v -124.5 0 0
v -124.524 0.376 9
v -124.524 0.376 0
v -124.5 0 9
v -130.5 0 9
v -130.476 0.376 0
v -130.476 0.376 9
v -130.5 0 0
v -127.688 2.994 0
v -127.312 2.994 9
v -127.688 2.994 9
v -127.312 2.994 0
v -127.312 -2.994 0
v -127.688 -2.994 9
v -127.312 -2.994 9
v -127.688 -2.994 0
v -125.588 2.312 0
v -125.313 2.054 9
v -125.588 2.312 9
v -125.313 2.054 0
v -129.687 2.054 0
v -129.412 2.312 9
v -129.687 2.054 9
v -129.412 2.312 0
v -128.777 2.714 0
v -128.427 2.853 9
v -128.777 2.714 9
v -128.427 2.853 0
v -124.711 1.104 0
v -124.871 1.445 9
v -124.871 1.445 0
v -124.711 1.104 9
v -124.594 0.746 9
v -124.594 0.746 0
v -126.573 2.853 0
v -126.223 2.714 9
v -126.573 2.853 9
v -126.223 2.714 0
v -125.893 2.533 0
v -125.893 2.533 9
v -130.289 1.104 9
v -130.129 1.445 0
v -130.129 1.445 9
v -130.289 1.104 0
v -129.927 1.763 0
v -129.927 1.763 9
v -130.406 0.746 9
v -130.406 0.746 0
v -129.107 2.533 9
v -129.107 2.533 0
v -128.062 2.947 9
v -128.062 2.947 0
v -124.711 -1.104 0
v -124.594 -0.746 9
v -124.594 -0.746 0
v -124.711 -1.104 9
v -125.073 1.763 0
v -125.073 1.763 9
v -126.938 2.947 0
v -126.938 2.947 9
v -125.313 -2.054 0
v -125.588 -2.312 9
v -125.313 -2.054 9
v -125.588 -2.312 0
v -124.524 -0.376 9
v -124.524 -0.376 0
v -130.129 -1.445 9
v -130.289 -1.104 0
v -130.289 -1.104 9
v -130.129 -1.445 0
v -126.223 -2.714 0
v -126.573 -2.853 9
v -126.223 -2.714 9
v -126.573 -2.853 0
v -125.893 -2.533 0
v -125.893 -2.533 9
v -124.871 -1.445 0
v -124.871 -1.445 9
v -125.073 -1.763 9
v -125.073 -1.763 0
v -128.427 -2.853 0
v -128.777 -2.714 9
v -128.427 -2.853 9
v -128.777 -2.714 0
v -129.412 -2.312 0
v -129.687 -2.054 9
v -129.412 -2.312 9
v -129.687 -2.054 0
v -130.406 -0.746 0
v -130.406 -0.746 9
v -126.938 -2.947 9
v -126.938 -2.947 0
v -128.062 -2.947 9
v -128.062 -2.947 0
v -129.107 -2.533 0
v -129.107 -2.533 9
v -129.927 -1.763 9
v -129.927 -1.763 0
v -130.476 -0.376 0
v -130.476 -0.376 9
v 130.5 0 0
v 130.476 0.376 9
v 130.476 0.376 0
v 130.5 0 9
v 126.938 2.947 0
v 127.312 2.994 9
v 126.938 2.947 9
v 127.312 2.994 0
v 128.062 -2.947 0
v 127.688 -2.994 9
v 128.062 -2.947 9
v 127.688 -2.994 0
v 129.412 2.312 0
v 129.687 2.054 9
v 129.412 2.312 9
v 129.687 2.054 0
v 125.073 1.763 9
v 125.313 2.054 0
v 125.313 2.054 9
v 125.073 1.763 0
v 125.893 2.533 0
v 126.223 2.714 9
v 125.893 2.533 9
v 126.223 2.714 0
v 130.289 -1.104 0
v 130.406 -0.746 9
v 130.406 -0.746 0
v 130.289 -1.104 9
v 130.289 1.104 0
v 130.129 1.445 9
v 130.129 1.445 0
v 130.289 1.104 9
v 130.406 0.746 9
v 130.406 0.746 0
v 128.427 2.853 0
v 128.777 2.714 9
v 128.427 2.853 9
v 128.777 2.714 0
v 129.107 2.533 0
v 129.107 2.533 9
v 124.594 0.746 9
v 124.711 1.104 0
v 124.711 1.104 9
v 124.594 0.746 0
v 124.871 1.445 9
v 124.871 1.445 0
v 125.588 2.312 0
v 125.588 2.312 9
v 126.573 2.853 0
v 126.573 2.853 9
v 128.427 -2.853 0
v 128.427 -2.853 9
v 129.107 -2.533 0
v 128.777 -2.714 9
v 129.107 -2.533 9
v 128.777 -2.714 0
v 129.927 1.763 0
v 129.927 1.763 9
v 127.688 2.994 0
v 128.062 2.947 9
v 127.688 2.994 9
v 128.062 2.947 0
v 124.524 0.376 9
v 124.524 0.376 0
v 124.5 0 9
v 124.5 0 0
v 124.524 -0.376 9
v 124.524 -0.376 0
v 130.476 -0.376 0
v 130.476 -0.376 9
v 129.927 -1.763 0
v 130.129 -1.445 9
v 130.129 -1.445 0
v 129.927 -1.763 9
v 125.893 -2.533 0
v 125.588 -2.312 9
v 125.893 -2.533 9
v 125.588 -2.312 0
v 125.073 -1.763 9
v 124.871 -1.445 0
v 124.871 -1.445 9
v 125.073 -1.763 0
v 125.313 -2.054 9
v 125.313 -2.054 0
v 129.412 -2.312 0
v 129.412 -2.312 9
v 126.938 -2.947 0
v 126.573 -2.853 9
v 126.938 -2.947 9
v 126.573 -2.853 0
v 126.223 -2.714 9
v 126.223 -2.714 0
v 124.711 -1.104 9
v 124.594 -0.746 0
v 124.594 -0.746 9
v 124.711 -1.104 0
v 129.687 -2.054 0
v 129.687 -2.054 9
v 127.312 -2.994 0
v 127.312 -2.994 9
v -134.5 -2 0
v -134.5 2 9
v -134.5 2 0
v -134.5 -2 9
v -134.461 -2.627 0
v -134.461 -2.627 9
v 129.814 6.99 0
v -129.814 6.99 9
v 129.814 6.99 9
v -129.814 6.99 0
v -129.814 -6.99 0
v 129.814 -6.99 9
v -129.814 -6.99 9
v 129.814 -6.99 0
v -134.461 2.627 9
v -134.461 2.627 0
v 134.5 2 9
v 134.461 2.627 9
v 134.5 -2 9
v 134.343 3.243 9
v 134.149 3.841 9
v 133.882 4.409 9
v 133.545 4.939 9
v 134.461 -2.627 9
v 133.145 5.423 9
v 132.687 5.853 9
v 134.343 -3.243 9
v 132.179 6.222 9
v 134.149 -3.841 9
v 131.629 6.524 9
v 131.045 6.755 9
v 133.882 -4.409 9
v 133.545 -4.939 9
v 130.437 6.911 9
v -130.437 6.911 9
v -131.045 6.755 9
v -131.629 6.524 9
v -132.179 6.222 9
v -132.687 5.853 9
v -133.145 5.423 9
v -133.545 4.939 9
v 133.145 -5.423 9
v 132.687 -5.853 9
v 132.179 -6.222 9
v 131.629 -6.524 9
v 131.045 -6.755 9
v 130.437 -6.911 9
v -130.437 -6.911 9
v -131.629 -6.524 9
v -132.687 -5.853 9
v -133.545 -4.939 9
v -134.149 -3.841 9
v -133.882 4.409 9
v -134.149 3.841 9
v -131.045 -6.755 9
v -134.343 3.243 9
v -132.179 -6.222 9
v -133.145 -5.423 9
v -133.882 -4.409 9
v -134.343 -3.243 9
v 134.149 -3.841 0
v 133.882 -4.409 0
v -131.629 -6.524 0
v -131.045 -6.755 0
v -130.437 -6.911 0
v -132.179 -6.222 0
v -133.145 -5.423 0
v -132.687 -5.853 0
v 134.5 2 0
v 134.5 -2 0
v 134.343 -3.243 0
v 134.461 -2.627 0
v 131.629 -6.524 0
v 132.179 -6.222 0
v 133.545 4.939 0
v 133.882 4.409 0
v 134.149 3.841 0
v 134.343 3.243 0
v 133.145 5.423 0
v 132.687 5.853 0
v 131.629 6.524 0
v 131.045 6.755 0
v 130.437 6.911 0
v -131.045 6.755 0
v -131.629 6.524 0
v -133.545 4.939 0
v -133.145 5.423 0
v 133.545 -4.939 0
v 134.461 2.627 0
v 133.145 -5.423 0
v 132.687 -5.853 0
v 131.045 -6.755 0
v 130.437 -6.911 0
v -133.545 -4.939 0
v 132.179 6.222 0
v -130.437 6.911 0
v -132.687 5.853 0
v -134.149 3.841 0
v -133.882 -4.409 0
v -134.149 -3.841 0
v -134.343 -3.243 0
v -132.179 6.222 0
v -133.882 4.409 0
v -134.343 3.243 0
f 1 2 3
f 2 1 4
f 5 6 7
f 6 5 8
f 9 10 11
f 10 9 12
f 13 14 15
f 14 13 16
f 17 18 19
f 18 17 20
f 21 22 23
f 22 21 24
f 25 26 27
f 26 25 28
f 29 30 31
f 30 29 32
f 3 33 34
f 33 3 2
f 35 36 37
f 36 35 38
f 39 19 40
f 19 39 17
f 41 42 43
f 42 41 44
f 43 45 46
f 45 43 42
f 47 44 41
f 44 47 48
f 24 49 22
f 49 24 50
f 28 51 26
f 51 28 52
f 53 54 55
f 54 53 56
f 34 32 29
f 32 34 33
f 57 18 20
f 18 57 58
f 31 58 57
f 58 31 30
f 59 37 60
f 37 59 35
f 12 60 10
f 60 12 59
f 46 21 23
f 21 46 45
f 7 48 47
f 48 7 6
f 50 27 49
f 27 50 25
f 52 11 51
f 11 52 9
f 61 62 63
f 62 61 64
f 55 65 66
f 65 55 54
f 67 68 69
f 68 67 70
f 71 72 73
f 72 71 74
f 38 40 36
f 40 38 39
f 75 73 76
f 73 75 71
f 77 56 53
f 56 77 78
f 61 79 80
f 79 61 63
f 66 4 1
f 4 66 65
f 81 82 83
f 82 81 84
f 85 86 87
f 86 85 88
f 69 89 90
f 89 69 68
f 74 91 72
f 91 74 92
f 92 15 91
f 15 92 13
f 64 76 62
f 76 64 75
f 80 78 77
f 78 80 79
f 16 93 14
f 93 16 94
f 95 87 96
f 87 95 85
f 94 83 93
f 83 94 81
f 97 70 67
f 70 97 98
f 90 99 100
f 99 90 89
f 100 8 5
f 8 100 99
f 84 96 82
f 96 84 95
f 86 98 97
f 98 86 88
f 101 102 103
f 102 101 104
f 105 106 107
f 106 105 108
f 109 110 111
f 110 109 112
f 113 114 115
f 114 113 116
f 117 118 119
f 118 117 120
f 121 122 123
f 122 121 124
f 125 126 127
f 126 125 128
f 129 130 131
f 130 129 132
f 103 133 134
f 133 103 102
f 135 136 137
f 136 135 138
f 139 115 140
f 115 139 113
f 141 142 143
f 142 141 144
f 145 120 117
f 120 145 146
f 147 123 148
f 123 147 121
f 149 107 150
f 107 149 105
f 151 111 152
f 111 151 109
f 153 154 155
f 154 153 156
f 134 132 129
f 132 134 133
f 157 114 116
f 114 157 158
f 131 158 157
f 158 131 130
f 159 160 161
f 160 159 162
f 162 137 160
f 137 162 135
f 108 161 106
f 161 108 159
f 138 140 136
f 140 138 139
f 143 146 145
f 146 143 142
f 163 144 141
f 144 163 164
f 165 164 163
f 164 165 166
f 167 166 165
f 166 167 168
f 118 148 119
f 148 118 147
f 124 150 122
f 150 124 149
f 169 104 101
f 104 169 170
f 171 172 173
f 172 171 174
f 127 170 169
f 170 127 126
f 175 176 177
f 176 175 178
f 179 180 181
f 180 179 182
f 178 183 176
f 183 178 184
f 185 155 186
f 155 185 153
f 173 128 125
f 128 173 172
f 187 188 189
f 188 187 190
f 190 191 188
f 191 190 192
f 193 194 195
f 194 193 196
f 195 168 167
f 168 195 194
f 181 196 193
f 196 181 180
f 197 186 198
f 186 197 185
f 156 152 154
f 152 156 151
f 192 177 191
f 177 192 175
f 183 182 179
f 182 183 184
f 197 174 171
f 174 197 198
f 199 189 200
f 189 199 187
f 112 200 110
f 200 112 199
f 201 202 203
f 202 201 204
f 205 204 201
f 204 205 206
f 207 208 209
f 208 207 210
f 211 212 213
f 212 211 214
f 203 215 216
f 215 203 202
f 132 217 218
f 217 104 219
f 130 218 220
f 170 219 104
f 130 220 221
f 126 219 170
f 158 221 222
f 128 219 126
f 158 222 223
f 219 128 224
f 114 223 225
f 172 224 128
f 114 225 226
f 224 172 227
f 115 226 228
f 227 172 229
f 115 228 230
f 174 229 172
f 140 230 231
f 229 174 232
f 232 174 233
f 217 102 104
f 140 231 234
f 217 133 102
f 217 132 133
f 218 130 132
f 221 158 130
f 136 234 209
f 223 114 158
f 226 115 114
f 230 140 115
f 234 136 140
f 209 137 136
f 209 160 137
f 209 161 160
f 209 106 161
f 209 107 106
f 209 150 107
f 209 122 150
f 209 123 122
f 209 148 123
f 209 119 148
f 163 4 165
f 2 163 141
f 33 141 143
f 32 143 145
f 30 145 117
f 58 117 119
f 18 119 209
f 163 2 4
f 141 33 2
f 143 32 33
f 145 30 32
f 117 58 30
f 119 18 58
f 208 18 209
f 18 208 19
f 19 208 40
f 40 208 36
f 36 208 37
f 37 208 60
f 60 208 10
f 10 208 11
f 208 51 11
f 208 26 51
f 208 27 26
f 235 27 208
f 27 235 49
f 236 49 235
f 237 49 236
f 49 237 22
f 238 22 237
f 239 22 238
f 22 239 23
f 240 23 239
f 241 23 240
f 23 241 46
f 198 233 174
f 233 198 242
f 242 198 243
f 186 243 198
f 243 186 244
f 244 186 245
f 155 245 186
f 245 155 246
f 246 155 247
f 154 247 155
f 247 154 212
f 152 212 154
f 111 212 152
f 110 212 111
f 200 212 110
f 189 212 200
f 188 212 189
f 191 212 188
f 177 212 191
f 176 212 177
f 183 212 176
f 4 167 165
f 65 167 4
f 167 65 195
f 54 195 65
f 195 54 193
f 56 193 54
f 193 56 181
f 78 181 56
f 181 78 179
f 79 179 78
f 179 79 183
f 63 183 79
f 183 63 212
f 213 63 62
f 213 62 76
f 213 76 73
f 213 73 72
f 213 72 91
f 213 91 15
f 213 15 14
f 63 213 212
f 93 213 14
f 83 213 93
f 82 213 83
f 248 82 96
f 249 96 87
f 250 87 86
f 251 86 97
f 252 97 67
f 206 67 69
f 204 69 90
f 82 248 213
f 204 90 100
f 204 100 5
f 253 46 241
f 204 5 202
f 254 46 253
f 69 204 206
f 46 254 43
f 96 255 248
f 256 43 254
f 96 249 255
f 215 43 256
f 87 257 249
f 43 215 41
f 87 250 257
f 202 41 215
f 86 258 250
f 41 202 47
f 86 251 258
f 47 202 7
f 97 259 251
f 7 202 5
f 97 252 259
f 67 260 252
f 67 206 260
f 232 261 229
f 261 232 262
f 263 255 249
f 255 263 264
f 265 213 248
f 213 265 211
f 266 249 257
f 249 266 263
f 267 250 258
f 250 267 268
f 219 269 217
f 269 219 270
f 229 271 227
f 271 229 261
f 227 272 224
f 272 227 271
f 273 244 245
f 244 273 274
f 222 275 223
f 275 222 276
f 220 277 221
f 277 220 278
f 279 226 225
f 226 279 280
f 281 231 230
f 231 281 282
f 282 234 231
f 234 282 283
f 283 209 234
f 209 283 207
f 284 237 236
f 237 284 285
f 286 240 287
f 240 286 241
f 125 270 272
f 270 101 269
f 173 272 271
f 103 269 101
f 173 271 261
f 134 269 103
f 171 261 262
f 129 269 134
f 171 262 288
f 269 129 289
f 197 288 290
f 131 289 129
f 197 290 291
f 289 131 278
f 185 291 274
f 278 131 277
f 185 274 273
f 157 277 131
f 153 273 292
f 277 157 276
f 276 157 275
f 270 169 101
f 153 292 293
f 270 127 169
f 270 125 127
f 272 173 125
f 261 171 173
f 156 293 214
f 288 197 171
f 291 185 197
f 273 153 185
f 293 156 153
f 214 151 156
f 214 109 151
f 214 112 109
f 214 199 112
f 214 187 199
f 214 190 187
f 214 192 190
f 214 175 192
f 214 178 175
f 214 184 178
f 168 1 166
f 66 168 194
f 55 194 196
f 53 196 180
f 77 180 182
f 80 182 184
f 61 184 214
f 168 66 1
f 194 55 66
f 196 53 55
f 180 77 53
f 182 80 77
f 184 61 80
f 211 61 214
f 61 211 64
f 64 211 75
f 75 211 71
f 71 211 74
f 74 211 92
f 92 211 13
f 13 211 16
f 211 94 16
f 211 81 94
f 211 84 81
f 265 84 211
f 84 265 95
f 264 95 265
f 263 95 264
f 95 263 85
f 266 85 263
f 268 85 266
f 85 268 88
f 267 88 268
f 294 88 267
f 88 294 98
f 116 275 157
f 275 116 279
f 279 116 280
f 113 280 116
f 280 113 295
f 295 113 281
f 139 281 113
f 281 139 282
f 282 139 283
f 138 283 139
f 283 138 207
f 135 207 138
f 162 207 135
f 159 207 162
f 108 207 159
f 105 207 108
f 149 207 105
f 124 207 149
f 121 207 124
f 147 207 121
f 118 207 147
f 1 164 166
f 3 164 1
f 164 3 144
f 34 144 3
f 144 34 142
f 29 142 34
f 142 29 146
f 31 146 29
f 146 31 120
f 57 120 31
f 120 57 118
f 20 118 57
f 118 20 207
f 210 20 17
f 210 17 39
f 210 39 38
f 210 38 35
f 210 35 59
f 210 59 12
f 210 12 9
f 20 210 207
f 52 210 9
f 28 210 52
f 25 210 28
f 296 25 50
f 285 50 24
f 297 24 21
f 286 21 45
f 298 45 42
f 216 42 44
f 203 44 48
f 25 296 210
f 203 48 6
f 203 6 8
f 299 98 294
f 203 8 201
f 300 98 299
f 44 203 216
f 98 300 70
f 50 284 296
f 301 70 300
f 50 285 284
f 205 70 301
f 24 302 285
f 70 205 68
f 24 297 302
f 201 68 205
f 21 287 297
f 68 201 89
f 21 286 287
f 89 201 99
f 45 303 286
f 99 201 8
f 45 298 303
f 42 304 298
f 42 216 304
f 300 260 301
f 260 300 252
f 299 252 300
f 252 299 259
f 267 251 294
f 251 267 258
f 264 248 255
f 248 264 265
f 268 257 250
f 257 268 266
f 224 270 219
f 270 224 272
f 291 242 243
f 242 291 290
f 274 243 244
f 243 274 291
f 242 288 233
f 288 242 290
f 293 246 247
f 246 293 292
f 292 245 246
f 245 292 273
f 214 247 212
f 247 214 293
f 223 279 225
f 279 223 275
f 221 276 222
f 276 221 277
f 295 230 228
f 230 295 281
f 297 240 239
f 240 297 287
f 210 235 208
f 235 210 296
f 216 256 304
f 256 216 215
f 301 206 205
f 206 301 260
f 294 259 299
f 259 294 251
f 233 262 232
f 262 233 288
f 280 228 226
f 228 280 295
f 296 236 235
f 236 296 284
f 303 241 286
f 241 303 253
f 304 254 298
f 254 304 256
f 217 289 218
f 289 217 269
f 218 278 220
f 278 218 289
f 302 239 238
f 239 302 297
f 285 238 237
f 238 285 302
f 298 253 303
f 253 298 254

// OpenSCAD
$fn = 50;


difference() {
	union() {
		hull() {
			translate(v = [-129.5000000000, 2.0000000000, 0]) {
				cylinder(h = 9, r = 5);
			}
			translate(v = [129.5000000000, 2.0000000000, 0]) {
				cylinder(h = 9, r = 5);
			}
			translate(v = [-129.5000000000, -2.0000000000, 0]) {
				cylinder(h = 9, r = 5);
			}
			translate(v = [129.5000000000, -2.0000000000, 0]) {
				cylinder(h = 9, r = 5);
			}
		}
	}
	union() {
		translate(v = [-127.5000000000, 0.0000000000, 0]) {
			cylinder(h = 9, r = 3.0000000000);
		}
		translate(v = [127.5000000000, 0.0000000000, 0]) {
			cylinder(h = 9, r = 3.0000000000);
		}
		translate(v = [-127.5000000000, 0.0000000000, 0]) {
			cylinder(h = 9, r = 1.5000000000);
		}
		translate(v = [127.5000000000, 0.0000000000, 0]) {
			cylinder(h = 9, r = 1.5000000000);
		}
		translate(v = [-127.5000000000, 0.0000000000, 0]) {
			cylinder(h = 9, r = 1.5000000000);
		}
		translate(v = [127.5000000000, 0.0000000000, 0]) {
			cylinder(h = 9, r = 1.5000000000);
		}
		translate(v = [-127.5000000000, 0.0000000000, 0]) {
			cylinder(h = 9, r = 1.5000000000);
		}
		translate(v = [127.5000000000, 0.0000000000, 0]) {
			cylinder(h = 9, r = 1.5000000000);
		}
	}
}
